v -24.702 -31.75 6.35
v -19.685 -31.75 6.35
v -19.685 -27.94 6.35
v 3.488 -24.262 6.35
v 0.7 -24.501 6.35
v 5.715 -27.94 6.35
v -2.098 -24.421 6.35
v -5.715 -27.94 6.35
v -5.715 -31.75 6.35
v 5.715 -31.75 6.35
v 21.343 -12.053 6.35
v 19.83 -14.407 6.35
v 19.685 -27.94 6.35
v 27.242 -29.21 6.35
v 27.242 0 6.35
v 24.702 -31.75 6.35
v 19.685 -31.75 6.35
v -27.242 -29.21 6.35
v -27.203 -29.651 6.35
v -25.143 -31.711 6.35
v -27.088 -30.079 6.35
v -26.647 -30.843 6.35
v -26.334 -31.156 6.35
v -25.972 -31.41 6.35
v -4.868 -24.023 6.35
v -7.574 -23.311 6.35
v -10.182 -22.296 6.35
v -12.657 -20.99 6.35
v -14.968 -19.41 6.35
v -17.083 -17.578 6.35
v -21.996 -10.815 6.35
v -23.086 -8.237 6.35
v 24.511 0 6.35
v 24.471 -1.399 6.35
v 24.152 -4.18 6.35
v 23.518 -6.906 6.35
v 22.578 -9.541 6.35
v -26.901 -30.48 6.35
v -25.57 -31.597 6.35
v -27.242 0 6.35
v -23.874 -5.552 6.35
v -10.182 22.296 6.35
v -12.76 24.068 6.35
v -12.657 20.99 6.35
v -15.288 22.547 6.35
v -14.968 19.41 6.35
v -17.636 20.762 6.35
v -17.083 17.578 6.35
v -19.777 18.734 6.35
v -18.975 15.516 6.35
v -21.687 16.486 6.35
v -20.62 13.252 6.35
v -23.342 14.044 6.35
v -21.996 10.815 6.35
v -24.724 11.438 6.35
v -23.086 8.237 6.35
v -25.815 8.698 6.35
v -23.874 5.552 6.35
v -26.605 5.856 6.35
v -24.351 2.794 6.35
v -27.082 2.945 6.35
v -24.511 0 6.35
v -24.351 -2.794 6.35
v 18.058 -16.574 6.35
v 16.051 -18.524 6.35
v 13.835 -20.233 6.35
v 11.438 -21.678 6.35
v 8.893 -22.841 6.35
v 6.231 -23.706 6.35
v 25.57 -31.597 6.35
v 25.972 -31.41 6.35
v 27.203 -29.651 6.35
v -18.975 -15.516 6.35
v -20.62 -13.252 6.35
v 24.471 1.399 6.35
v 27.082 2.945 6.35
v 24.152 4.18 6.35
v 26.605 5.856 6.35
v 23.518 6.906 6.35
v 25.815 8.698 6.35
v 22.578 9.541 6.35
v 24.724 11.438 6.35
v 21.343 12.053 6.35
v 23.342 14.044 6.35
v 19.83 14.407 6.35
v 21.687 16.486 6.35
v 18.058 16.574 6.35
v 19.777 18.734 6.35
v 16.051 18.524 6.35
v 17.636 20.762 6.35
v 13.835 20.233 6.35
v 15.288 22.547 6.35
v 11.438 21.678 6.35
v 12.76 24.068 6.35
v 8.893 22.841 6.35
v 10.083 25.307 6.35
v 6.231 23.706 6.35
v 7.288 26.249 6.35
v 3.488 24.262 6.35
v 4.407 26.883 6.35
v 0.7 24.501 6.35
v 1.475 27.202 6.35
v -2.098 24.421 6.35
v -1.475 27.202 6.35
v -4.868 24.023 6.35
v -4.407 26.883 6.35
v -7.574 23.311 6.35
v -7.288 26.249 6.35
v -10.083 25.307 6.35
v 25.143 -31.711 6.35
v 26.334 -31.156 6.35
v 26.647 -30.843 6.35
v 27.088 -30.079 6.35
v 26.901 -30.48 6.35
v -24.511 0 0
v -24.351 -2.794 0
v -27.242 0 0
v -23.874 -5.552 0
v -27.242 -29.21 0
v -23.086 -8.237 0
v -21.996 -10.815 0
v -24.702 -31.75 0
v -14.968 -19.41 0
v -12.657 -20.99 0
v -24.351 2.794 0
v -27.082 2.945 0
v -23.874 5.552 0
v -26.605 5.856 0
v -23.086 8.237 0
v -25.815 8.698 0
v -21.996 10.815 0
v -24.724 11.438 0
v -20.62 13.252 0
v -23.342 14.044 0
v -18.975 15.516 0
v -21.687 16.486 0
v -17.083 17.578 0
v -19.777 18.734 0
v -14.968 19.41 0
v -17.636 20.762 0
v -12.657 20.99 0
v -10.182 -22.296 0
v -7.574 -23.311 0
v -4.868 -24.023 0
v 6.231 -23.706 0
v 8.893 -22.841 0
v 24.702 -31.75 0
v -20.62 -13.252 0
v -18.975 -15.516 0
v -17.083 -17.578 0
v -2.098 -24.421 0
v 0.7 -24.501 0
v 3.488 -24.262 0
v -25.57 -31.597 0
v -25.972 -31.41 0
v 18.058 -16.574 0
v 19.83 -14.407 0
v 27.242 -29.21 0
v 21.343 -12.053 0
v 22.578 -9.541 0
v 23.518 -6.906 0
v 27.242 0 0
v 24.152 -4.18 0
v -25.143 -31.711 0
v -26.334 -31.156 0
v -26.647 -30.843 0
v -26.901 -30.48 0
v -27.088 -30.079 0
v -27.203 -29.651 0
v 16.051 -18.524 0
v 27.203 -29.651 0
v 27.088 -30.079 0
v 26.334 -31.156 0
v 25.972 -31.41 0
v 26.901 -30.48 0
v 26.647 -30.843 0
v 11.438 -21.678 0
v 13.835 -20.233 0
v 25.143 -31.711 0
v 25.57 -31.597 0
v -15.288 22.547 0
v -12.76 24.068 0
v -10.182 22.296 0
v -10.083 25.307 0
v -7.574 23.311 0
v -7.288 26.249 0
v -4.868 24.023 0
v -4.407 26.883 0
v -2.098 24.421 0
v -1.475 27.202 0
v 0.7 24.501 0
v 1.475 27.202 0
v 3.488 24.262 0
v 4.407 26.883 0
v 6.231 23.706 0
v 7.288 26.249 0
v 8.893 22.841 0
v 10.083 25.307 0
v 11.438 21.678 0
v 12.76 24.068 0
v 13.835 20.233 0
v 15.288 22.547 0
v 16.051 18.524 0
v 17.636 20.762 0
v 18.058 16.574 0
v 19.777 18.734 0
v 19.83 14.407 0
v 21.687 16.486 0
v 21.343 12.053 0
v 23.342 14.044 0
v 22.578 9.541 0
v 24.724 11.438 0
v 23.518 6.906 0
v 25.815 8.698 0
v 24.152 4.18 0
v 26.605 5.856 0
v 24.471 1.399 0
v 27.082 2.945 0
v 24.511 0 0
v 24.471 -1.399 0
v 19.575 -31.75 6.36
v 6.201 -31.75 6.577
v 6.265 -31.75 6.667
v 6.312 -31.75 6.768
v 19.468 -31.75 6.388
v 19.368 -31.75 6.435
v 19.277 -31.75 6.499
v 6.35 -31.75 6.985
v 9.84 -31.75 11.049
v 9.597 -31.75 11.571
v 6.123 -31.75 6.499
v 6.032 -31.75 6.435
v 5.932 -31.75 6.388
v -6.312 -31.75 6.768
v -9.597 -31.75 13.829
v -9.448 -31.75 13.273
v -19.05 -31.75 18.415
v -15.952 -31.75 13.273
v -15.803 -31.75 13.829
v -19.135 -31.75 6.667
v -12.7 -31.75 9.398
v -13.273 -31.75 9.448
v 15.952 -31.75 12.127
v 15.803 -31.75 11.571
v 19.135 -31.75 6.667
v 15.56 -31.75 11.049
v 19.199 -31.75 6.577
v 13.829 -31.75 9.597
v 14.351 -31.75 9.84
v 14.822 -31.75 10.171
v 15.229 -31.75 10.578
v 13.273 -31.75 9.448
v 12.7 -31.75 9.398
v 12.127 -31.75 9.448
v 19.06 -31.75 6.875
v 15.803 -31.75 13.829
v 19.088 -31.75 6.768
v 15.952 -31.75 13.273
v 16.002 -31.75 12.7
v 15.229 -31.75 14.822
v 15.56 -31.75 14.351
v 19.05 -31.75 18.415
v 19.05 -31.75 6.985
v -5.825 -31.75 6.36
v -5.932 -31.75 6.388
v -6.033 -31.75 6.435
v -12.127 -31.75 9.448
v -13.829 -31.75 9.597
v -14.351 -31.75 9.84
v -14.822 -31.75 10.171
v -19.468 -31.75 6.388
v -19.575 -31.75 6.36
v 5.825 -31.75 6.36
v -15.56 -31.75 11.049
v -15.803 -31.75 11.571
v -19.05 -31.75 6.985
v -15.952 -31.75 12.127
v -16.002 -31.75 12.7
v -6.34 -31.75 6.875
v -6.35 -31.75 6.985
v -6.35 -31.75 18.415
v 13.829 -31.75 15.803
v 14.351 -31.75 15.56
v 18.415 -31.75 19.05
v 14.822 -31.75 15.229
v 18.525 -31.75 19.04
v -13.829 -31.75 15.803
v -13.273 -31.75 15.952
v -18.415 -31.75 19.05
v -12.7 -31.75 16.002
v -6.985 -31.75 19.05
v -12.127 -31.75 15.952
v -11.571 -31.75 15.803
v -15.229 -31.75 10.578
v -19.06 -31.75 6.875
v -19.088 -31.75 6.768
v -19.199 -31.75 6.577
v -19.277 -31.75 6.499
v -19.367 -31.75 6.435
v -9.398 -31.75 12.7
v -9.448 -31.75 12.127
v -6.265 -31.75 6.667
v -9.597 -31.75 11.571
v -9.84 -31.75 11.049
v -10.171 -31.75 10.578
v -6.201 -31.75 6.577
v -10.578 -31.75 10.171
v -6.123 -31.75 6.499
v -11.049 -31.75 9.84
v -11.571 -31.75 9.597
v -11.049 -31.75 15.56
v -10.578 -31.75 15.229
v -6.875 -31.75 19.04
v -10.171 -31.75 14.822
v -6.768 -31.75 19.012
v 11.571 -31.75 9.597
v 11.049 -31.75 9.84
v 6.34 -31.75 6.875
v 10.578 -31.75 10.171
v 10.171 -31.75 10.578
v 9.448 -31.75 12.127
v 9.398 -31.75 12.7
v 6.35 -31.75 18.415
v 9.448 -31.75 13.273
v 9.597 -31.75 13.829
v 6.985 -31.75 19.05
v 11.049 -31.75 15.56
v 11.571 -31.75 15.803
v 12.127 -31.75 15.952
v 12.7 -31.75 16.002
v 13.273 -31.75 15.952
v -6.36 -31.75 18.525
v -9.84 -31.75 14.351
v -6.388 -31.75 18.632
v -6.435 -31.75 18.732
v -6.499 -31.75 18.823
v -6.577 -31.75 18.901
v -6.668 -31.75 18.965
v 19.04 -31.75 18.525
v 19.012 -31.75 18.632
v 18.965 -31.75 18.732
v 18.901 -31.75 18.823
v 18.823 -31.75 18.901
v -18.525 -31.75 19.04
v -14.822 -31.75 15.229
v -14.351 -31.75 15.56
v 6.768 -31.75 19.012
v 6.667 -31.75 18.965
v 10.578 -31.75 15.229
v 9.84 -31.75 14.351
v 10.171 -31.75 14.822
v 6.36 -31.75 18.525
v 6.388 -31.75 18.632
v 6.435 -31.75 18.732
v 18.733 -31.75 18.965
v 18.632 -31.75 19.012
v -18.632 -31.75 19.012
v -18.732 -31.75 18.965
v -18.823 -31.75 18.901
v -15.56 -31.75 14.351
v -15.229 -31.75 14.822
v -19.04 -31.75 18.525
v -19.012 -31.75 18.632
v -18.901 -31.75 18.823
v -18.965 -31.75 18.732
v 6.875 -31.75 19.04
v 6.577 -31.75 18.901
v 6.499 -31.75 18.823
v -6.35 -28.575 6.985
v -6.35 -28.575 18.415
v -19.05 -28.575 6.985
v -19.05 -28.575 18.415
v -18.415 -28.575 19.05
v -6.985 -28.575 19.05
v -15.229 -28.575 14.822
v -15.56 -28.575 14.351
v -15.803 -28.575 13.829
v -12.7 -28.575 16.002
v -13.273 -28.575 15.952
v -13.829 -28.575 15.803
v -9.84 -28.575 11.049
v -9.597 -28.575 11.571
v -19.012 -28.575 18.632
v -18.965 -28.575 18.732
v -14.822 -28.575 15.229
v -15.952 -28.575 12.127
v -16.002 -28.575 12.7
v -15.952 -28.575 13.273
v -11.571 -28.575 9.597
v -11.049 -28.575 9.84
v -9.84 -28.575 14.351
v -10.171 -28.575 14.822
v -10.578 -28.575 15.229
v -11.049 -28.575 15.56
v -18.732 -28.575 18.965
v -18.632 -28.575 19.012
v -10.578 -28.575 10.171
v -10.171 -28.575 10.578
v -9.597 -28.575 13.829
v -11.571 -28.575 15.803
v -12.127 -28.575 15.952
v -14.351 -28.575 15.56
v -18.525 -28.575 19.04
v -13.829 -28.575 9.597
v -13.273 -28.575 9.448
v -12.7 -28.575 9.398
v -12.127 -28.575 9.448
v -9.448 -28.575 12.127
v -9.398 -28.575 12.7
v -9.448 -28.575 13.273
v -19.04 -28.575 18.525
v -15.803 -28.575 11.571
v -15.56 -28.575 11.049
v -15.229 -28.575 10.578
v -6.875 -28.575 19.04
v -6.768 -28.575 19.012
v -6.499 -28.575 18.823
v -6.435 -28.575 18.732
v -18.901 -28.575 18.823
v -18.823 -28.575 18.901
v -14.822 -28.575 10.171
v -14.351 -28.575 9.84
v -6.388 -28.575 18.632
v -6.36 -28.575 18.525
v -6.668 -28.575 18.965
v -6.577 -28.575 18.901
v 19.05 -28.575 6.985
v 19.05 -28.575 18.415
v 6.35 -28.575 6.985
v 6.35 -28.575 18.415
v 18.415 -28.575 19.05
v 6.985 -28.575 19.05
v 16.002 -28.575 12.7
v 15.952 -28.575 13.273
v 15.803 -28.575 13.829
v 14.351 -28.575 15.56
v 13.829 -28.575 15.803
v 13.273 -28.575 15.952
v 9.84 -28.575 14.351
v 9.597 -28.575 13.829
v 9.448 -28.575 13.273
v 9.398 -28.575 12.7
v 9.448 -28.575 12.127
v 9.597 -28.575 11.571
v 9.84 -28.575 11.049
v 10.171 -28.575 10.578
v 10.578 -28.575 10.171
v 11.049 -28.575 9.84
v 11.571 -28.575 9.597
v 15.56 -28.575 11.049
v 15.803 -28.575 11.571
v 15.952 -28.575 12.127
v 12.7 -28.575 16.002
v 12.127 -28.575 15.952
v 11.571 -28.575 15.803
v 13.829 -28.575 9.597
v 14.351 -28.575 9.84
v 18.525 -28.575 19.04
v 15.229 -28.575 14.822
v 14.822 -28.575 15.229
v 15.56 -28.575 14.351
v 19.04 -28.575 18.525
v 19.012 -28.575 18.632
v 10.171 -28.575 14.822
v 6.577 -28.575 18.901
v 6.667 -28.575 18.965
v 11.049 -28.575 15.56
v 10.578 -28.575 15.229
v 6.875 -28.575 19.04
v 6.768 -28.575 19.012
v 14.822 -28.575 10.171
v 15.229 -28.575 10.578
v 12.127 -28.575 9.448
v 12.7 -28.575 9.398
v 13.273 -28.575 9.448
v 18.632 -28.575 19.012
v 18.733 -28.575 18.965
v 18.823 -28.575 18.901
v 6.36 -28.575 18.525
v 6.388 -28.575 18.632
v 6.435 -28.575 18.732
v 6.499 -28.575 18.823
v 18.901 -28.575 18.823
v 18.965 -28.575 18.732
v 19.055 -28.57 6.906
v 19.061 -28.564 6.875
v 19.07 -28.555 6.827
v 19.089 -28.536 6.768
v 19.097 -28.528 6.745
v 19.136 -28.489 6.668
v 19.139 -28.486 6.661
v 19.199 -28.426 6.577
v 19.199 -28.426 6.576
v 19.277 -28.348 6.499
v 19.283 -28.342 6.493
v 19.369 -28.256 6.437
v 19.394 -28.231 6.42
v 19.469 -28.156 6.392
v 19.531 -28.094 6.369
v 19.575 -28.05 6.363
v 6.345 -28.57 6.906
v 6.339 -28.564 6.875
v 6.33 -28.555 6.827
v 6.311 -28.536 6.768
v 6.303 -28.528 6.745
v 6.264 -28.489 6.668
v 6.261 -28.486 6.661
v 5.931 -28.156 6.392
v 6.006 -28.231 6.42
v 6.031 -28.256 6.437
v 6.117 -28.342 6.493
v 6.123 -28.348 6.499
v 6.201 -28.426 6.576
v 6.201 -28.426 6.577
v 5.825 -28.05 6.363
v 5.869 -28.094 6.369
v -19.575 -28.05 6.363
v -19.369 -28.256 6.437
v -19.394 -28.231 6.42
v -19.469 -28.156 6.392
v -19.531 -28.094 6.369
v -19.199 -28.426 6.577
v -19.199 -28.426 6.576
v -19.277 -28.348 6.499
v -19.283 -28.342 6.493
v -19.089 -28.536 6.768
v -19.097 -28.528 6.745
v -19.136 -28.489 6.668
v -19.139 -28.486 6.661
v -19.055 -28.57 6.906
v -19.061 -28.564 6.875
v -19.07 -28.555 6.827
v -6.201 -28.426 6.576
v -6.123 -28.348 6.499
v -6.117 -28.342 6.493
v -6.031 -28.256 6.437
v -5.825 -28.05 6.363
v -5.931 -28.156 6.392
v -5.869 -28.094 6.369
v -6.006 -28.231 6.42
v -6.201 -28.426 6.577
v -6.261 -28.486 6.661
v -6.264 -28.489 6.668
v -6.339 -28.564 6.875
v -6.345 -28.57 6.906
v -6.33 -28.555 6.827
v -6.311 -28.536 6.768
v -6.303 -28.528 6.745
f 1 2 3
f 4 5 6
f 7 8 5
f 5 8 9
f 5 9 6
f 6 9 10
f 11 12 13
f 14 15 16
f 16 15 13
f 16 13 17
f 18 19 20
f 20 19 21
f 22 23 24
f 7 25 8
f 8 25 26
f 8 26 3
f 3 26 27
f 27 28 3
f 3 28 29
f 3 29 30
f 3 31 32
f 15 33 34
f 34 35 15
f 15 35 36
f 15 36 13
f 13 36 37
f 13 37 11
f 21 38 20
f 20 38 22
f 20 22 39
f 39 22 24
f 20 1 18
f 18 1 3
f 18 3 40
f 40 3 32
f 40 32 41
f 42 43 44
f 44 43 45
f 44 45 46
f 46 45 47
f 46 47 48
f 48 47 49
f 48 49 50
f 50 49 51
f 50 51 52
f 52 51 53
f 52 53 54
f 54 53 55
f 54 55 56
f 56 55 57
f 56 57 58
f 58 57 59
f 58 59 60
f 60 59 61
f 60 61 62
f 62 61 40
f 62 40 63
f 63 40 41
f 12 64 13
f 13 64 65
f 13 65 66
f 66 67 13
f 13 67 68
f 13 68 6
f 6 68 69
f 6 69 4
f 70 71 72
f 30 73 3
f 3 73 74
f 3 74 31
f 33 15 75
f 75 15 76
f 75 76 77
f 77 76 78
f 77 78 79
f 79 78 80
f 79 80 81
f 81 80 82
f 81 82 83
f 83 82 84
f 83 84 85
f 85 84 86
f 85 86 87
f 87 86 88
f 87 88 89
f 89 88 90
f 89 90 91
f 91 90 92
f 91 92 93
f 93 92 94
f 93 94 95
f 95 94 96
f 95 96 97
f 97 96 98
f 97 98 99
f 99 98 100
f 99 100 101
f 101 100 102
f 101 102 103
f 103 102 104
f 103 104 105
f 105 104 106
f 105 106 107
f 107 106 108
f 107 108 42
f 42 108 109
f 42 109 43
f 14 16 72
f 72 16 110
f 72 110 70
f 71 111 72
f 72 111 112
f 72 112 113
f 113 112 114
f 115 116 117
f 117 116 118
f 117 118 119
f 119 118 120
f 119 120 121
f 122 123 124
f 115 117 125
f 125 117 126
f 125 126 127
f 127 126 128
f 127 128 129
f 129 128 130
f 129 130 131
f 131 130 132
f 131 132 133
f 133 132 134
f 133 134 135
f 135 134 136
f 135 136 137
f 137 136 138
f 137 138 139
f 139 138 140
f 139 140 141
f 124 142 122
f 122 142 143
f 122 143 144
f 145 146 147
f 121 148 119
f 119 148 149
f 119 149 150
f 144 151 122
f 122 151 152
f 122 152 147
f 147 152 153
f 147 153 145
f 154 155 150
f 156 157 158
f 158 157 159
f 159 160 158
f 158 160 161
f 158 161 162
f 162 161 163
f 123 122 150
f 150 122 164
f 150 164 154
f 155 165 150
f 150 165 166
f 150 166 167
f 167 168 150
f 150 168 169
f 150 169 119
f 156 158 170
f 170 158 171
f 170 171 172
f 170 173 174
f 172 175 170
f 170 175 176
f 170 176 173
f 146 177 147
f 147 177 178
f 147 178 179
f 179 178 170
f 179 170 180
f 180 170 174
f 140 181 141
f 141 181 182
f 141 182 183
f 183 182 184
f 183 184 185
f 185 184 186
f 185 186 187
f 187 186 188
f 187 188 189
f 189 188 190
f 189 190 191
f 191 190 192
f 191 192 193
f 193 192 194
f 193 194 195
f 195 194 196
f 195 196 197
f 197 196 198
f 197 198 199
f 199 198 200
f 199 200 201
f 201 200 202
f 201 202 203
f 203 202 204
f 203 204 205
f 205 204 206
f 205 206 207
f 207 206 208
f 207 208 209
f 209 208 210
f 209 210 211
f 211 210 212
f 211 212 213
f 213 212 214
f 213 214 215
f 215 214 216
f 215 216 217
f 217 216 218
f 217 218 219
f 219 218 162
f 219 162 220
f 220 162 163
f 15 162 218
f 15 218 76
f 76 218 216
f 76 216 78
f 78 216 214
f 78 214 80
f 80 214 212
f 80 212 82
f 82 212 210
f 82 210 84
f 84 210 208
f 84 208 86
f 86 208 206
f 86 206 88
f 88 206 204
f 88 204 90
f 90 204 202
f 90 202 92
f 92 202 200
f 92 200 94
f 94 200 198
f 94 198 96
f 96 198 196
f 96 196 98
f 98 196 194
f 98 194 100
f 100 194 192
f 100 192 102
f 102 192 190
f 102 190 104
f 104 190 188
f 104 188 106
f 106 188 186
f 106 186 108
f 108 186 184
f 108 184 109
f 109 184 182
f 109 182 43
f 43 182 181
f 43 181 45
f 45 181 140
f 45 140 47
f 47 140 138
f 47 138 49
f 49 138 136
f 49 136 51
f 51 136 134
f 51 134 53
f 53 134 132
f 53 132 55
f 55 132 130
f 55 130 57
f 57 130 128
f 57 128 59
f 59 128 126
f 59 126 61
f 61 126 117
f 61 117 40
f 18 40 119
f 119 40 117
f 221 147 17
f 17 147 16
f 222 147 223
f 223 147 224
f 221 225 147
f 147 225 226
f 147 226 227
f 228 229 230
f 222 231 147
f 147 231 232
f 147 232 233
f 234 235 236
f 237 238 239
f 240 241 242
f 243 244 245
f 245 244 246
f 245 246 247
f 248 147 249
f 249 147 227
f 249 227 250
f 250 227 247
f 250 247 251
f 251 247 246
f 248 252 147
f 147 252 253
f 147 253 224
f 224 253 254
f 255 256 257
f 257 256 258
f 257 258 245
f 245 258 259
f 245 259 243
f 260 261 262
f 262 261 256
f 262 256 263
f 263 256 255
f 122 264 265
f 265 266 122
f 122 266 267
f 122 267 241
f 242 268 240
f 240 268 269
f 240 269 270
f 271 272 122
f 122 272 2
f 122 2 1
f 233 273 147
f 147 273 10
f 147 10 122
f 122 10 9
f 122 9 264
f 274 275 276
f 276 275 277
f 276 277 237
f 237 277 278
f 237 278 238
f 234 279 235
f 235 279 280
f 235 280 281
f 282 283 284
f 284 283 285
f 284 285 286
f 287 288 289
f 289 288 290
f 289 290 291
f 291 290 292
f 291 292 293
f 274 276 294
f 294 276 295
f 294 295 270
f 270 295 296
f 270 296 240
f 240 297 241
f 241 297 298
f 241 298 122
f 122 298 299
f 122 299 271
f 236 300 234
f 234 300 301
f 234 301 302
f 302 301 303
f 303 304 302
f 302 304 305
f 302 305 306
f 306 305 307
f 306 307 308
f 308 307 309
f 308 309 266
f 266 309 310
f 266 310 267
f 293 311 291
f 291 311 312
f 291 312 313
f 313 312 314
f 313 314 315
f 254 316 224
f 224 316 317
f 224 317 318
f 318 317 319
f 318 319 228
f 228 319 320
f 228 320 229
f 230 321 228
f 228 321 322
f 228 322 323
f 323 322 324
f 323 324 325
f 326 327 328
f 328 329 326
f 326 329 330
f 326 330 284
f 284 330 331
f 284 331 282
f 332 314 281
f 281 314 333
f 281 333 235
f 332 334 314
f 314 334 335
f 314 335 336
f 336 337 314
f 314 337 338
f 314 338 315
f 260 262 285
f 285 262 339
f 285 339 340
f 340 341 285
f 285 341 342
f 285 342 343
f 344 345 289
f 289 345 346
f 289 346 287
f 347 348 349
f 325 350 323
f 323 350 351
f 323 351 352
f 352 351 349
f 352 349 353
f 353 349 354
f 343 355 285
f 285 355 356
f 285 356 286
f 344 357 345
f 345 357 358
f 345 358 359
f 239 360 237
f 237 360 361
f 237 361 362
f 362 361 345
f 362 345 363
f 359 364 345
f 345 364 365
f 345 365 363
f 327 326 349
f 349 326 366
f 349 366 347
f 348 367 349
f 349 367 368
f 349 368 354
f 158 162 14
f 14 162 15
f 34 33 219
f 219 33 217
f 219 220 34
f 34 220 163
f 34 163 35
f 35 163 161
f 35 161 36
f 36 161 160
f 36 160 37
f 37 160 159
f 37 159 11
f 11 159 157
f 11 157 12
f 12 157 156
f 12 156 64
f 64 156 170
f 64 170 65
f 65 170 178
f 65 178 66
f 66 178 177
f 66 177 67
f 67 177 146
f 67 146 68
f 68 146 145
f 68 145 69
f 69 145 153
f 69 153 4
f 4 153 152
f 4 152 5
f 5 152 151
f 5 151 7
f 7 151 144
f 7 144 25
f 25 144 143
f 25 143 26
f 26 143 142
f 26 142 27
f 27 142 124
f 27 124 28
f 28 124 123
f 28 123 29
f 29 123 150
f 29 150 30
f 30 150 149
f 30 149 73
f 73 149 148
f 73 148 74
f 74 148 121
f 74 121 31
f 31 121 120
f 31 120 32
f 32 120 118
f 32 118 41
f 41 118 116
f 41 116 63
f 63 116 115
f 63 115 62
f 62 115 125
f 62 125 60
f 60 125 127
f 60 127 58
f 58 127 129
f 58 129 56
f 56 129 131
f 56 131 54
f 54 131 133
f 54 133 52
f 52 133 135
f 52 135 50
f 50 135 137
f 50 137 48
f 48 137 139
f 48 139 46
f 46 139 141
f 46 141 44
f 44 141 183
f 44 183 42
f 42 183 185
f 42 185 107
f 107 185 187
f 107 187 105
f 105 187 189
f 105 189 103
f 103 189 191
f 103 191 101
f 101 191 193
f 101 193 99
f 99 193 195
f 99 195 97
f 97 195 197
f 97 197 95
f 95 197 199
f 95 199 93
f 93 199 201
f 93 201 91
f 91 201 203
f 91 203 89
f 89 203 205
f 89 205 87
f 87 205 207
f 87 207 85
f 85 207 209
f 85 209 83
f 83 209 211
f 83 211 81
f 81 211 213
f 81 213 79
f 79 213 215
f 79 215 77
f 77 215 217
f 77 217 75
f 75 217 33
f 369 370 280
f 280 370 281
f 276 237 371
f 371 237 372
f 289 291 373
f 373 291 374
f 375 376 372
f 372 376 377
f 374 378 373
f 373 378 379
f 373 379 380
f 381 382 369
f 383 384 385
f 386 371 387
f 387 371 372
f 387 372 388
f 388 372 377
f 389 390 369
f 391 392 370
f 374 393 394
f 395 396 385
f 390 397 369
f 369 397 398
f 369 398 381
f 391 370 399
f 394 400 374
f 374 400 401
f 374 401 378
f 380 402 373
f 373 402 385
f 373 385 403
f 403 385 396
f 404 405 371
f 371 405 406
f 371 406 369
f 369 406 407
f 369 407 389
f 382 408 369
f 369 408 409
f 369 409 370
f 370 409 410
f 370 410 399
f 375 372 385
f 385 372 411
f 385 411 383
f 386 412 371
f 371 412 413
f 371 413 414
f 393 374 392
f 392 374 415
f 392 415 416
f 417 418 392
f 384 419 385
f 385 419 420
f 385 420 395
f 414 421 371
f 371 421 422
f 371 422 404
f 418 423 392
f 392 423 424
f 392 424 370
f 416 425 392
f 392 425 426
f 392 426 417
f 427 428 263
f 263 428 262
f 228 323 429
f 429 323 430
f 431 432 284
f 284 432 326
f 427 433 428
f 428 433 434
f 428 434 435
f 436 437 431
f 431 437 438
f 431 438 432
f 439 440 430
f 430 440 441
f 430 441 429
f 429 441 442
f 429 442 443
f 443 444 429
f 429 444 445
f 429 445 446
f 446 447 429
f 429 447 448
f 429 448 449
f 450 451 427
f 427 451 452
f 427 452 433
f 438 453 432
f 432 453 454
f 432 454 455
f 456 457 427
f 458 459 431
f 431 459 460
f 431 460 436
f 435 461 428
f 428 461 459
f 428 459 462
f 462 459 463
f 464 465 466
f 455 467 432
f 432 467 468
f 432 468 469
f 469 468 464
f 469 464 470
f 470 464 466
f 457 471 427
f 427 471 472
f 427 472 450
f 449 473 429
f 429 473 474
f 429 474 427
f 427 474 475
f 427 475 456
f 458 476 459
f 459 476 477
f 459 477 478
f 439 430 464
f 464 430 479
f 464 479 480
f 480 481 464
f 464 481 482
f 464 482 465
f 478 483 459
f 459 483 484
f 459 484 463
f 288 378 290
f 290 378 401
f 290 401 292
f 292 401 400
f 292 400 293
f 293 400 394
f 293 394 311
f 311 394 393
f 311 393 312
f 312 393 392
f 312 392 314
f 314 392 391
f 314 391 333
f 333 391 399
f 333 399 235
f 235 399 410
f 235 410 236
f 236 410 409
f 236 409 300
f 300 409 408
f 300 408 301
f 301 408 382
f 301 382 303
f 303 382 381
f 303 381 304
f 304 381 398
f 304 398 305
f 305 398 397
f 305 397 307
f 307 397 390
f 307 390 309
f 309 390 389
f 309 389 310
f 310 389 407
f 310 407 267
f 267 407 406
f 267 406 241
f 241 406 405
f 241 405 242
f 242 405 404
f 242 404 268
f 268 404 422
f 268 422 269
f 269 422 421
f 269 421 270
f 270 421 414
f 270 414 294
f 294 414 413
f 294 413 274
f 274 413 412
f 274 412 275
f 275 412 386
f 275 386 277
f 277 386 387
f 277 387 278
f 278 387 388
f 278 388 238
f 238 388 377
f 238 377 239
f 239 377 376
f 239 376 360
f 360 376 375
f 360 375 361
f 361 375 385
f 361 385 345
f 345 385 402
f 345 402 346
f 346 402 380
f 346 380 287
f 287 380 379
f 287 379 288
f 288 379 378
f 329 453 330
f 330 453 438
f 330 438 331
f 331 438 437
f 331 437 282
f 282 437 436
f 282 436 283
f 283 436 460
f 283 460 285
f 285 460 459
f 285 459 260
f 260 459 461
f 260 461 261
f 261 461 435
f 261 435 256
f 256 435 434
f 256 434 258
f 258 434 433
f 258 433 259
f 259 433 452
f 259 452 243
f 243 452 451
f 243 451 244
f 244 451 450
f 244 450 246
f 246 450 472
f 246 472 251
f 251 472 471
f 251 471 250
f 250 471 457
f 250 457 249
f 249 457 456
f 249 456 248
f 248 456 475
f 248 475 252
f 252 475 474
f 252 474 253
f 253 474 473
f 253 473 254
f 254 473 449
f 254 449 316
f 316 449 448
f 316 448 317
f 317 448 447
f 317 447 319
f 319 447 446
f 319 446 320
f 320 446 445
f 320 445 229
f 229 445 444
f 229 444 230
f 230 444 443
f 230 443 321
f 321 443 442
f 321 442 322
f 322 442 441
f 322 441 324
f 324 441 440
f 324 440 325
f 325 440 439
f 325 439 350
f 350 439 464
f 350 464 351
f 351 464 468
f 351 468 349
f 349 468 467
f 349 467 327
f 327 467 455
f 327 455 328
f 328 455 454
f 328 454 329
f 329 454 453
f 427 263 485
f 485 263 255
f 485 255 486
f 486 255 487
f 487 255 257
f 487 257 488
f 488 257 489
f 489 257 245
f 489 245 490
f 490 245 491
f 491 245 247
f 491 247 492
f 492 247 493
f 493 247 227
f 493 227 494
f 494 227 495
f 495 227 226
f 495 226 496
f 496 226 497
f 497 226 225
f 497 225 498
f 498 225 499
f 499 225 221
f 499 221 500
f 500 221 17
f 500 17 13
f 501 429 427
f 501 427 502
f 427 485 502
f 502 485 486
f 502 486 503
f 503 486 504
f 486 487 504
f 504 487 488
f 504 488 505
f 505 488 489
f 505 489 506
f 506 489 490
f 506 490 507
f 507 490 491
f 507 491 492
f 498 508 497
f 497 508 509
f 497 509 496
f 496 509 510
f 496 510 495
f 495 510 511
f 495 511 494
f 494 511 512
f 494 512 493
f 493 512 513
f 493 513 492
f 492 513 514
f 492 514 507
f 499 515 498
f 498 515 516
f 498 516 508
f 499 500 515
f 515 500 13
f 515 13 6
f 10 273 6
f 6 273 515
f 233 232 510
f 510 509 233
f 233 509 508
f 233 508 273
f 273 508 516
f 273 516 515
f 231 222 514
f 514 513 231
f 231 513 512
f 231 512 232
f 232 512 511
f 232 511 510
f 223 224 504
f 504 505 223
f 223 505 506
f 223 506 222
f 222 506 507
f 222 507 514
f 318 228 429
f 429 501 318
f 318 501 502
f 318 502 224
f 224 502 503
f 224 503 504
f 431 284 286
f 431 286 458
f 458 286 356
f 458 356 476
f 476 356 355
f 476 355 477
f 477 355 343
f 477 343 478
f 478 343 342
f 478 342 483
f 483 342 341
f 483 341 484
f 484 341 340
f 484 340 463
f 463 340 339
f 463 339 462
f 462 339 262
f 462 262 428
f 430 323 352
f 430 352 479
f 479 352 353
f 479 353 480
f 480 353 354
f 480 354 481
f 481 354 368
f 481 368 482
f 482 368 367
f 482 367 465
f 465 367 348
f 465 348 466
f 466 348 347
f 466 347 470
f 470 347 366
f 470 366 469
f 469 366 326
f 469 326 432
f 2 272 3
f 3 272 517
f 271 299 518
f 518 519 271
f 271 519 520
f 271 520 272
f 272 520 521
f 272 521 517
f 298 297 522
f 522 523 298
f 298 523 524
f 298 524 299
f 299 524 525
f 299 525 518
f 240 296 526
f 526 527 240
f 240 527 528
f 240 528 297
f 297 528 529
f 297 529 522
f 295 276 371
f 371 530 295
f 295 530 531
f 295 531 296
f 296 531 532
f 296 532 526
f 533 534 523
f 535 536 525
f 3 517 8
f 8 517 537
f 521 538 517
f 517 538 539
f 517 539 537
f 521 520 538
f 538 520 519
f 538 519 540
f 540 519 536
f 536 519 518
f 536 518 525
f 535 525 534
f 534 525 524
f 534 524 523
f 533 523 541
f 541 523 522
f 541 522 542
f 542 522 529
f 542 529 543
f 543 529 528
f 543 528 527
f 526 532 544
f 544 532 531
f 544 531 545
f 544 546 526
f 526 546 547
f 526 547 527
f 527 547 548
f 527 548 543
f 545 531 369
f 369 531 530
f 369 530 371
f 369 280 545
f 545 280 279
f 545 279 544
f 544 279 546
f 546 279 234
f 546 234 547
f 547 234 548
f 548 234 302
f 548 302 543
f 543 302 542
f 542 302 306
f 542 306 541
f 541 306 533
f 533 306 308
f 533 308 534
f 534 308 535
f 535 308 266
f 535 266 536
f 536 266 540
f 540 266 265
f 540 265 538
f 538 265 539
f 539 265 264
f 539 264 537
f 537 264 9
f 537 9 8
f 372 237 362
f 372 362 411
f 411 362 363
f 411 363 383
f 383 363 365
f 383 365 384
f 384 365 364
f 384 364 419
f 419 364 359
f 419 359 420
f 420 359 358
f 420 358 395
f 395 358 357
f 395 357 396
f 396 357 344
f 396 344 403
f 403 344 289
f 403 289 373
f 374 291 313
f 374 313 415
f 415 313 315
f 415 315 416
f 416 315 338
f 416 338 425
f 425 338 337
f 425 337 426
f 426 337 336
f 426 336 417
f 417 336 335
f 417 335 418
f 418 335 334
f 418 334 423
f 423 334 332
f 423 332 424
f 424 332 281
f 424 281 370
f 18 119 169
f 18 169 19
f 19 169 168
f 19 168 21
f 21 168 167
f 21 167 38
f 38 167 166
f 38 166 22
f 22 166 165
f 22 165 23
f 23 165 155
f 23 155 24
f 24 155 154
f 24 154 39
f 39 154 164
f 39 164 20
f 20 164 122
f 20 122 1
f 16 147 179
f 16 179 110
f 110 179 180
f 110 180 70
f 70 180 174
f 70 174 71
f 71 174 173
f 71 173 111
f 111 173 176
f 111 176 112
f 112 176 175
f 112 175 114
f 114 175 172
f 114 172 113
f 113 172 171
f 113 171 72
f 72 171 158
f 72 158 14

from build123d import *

# Parameters (mm, degrees)
SKETCH1_R           = 24.511
BOSS_EXTRUDE1_DEPTH = 6.35
SKETCH6_W           = 12.7
SKETCH6_H           = 19.05
BOSS_EXTRUDE3_DEPTH = 3.175
SKETCH7_R           = 3.302
CUT_EXTRUDE5_DEPTH  = 65.96524836
FILLET2_R           = 0.635
FILLET3_R           = 2.54


with BuildPart() as part:
    # Sketch1 → Boss-Extrude1 (new body)
    with BuildSketch(Plane.XY):
        with BuildLine():
            Line((-27.2415, 0), (-27.2415, -31.75))
            Line((-27.2415, -31.75), (27.2415, -31.75))
            Line((27.2415, -31.75), (27.2415, 0))
            ThreePointArc((27.2415, 0), (0, 27.2415), (-27.2415, 0))
        make_face()
        Circle(SKETCH1_R, mode=Mode.SUBTRACT)
    extrude(amount=BOSS_EXTRUDE1_DEPTH)

    # Sketch6 → Boss-Extrude3 (add)
    with BuildSketch(Plane(origin=(0, -31.75, 0), x_dir=(-1, 0, 0), z_dir=(0, -1, 0))):
        with Locations((12.7, -9.525)):
            Rectangle(SKETCH6_W, SKETCH6_H)
        with Locations((-12.7, -9.525)):
            Rectangle(SKETCH6_W, SKETCH6_H)
    extrude(amount=-BOSS_EXTRUDE3_DEPTH)

    # Sketch7 → Cut-Extrude5 (cut, through all)
    with BuildSketch(Plane(origin=(0, -28.575, 0), x_dir=(1, 0, 0), z_dir=(0, 1, 0))):
        with Locations(Location((-12.7, -12.7, 0), (0, 0, 270))):
            Circle(SKETCH7_R)
        with Locations(Location((12.7, -12.7, 0), (0, 0, 270))):
            Circle(SKETCH7_R)
    extrude(amount=-CUT_EXTRUDE5_DEPTH, mode=Mode.SUBTRACT)

    # Fillet2
    fillet2_edges = [part.edges().sort_by_distance(p)[0] for p in [
        (-6.35, -30.1625, 6.35),
        (-6.35, -30.1625, 19.05),
        (-19.05, -30.1625, 6.35),
        (-19.05, -30.1625, 19.05),
        (-12.7, -28.575, 6.35),
        (12.7, -28.575, 6.35),
        (19.05, -30.1625, 6.35),
        (19.05, -30.1625, 19.05),
        (6.35, -30.1625, 6.35),
        (6.35, -30.1625, 19.05),
    ]]
    fillet(fillet2_edges, radius=FILLET2_R)

    # Fillet3
    fillet3_edges = [part.edges().sort_by_distance(p)[0] for p in [
        (27.2415, -31.75, 3.175),
        (-27.2415, -31.75, 3.175),
    ]]
    fillet(fillet3_edges, radius=FILLET3_R)


solid = part.part
